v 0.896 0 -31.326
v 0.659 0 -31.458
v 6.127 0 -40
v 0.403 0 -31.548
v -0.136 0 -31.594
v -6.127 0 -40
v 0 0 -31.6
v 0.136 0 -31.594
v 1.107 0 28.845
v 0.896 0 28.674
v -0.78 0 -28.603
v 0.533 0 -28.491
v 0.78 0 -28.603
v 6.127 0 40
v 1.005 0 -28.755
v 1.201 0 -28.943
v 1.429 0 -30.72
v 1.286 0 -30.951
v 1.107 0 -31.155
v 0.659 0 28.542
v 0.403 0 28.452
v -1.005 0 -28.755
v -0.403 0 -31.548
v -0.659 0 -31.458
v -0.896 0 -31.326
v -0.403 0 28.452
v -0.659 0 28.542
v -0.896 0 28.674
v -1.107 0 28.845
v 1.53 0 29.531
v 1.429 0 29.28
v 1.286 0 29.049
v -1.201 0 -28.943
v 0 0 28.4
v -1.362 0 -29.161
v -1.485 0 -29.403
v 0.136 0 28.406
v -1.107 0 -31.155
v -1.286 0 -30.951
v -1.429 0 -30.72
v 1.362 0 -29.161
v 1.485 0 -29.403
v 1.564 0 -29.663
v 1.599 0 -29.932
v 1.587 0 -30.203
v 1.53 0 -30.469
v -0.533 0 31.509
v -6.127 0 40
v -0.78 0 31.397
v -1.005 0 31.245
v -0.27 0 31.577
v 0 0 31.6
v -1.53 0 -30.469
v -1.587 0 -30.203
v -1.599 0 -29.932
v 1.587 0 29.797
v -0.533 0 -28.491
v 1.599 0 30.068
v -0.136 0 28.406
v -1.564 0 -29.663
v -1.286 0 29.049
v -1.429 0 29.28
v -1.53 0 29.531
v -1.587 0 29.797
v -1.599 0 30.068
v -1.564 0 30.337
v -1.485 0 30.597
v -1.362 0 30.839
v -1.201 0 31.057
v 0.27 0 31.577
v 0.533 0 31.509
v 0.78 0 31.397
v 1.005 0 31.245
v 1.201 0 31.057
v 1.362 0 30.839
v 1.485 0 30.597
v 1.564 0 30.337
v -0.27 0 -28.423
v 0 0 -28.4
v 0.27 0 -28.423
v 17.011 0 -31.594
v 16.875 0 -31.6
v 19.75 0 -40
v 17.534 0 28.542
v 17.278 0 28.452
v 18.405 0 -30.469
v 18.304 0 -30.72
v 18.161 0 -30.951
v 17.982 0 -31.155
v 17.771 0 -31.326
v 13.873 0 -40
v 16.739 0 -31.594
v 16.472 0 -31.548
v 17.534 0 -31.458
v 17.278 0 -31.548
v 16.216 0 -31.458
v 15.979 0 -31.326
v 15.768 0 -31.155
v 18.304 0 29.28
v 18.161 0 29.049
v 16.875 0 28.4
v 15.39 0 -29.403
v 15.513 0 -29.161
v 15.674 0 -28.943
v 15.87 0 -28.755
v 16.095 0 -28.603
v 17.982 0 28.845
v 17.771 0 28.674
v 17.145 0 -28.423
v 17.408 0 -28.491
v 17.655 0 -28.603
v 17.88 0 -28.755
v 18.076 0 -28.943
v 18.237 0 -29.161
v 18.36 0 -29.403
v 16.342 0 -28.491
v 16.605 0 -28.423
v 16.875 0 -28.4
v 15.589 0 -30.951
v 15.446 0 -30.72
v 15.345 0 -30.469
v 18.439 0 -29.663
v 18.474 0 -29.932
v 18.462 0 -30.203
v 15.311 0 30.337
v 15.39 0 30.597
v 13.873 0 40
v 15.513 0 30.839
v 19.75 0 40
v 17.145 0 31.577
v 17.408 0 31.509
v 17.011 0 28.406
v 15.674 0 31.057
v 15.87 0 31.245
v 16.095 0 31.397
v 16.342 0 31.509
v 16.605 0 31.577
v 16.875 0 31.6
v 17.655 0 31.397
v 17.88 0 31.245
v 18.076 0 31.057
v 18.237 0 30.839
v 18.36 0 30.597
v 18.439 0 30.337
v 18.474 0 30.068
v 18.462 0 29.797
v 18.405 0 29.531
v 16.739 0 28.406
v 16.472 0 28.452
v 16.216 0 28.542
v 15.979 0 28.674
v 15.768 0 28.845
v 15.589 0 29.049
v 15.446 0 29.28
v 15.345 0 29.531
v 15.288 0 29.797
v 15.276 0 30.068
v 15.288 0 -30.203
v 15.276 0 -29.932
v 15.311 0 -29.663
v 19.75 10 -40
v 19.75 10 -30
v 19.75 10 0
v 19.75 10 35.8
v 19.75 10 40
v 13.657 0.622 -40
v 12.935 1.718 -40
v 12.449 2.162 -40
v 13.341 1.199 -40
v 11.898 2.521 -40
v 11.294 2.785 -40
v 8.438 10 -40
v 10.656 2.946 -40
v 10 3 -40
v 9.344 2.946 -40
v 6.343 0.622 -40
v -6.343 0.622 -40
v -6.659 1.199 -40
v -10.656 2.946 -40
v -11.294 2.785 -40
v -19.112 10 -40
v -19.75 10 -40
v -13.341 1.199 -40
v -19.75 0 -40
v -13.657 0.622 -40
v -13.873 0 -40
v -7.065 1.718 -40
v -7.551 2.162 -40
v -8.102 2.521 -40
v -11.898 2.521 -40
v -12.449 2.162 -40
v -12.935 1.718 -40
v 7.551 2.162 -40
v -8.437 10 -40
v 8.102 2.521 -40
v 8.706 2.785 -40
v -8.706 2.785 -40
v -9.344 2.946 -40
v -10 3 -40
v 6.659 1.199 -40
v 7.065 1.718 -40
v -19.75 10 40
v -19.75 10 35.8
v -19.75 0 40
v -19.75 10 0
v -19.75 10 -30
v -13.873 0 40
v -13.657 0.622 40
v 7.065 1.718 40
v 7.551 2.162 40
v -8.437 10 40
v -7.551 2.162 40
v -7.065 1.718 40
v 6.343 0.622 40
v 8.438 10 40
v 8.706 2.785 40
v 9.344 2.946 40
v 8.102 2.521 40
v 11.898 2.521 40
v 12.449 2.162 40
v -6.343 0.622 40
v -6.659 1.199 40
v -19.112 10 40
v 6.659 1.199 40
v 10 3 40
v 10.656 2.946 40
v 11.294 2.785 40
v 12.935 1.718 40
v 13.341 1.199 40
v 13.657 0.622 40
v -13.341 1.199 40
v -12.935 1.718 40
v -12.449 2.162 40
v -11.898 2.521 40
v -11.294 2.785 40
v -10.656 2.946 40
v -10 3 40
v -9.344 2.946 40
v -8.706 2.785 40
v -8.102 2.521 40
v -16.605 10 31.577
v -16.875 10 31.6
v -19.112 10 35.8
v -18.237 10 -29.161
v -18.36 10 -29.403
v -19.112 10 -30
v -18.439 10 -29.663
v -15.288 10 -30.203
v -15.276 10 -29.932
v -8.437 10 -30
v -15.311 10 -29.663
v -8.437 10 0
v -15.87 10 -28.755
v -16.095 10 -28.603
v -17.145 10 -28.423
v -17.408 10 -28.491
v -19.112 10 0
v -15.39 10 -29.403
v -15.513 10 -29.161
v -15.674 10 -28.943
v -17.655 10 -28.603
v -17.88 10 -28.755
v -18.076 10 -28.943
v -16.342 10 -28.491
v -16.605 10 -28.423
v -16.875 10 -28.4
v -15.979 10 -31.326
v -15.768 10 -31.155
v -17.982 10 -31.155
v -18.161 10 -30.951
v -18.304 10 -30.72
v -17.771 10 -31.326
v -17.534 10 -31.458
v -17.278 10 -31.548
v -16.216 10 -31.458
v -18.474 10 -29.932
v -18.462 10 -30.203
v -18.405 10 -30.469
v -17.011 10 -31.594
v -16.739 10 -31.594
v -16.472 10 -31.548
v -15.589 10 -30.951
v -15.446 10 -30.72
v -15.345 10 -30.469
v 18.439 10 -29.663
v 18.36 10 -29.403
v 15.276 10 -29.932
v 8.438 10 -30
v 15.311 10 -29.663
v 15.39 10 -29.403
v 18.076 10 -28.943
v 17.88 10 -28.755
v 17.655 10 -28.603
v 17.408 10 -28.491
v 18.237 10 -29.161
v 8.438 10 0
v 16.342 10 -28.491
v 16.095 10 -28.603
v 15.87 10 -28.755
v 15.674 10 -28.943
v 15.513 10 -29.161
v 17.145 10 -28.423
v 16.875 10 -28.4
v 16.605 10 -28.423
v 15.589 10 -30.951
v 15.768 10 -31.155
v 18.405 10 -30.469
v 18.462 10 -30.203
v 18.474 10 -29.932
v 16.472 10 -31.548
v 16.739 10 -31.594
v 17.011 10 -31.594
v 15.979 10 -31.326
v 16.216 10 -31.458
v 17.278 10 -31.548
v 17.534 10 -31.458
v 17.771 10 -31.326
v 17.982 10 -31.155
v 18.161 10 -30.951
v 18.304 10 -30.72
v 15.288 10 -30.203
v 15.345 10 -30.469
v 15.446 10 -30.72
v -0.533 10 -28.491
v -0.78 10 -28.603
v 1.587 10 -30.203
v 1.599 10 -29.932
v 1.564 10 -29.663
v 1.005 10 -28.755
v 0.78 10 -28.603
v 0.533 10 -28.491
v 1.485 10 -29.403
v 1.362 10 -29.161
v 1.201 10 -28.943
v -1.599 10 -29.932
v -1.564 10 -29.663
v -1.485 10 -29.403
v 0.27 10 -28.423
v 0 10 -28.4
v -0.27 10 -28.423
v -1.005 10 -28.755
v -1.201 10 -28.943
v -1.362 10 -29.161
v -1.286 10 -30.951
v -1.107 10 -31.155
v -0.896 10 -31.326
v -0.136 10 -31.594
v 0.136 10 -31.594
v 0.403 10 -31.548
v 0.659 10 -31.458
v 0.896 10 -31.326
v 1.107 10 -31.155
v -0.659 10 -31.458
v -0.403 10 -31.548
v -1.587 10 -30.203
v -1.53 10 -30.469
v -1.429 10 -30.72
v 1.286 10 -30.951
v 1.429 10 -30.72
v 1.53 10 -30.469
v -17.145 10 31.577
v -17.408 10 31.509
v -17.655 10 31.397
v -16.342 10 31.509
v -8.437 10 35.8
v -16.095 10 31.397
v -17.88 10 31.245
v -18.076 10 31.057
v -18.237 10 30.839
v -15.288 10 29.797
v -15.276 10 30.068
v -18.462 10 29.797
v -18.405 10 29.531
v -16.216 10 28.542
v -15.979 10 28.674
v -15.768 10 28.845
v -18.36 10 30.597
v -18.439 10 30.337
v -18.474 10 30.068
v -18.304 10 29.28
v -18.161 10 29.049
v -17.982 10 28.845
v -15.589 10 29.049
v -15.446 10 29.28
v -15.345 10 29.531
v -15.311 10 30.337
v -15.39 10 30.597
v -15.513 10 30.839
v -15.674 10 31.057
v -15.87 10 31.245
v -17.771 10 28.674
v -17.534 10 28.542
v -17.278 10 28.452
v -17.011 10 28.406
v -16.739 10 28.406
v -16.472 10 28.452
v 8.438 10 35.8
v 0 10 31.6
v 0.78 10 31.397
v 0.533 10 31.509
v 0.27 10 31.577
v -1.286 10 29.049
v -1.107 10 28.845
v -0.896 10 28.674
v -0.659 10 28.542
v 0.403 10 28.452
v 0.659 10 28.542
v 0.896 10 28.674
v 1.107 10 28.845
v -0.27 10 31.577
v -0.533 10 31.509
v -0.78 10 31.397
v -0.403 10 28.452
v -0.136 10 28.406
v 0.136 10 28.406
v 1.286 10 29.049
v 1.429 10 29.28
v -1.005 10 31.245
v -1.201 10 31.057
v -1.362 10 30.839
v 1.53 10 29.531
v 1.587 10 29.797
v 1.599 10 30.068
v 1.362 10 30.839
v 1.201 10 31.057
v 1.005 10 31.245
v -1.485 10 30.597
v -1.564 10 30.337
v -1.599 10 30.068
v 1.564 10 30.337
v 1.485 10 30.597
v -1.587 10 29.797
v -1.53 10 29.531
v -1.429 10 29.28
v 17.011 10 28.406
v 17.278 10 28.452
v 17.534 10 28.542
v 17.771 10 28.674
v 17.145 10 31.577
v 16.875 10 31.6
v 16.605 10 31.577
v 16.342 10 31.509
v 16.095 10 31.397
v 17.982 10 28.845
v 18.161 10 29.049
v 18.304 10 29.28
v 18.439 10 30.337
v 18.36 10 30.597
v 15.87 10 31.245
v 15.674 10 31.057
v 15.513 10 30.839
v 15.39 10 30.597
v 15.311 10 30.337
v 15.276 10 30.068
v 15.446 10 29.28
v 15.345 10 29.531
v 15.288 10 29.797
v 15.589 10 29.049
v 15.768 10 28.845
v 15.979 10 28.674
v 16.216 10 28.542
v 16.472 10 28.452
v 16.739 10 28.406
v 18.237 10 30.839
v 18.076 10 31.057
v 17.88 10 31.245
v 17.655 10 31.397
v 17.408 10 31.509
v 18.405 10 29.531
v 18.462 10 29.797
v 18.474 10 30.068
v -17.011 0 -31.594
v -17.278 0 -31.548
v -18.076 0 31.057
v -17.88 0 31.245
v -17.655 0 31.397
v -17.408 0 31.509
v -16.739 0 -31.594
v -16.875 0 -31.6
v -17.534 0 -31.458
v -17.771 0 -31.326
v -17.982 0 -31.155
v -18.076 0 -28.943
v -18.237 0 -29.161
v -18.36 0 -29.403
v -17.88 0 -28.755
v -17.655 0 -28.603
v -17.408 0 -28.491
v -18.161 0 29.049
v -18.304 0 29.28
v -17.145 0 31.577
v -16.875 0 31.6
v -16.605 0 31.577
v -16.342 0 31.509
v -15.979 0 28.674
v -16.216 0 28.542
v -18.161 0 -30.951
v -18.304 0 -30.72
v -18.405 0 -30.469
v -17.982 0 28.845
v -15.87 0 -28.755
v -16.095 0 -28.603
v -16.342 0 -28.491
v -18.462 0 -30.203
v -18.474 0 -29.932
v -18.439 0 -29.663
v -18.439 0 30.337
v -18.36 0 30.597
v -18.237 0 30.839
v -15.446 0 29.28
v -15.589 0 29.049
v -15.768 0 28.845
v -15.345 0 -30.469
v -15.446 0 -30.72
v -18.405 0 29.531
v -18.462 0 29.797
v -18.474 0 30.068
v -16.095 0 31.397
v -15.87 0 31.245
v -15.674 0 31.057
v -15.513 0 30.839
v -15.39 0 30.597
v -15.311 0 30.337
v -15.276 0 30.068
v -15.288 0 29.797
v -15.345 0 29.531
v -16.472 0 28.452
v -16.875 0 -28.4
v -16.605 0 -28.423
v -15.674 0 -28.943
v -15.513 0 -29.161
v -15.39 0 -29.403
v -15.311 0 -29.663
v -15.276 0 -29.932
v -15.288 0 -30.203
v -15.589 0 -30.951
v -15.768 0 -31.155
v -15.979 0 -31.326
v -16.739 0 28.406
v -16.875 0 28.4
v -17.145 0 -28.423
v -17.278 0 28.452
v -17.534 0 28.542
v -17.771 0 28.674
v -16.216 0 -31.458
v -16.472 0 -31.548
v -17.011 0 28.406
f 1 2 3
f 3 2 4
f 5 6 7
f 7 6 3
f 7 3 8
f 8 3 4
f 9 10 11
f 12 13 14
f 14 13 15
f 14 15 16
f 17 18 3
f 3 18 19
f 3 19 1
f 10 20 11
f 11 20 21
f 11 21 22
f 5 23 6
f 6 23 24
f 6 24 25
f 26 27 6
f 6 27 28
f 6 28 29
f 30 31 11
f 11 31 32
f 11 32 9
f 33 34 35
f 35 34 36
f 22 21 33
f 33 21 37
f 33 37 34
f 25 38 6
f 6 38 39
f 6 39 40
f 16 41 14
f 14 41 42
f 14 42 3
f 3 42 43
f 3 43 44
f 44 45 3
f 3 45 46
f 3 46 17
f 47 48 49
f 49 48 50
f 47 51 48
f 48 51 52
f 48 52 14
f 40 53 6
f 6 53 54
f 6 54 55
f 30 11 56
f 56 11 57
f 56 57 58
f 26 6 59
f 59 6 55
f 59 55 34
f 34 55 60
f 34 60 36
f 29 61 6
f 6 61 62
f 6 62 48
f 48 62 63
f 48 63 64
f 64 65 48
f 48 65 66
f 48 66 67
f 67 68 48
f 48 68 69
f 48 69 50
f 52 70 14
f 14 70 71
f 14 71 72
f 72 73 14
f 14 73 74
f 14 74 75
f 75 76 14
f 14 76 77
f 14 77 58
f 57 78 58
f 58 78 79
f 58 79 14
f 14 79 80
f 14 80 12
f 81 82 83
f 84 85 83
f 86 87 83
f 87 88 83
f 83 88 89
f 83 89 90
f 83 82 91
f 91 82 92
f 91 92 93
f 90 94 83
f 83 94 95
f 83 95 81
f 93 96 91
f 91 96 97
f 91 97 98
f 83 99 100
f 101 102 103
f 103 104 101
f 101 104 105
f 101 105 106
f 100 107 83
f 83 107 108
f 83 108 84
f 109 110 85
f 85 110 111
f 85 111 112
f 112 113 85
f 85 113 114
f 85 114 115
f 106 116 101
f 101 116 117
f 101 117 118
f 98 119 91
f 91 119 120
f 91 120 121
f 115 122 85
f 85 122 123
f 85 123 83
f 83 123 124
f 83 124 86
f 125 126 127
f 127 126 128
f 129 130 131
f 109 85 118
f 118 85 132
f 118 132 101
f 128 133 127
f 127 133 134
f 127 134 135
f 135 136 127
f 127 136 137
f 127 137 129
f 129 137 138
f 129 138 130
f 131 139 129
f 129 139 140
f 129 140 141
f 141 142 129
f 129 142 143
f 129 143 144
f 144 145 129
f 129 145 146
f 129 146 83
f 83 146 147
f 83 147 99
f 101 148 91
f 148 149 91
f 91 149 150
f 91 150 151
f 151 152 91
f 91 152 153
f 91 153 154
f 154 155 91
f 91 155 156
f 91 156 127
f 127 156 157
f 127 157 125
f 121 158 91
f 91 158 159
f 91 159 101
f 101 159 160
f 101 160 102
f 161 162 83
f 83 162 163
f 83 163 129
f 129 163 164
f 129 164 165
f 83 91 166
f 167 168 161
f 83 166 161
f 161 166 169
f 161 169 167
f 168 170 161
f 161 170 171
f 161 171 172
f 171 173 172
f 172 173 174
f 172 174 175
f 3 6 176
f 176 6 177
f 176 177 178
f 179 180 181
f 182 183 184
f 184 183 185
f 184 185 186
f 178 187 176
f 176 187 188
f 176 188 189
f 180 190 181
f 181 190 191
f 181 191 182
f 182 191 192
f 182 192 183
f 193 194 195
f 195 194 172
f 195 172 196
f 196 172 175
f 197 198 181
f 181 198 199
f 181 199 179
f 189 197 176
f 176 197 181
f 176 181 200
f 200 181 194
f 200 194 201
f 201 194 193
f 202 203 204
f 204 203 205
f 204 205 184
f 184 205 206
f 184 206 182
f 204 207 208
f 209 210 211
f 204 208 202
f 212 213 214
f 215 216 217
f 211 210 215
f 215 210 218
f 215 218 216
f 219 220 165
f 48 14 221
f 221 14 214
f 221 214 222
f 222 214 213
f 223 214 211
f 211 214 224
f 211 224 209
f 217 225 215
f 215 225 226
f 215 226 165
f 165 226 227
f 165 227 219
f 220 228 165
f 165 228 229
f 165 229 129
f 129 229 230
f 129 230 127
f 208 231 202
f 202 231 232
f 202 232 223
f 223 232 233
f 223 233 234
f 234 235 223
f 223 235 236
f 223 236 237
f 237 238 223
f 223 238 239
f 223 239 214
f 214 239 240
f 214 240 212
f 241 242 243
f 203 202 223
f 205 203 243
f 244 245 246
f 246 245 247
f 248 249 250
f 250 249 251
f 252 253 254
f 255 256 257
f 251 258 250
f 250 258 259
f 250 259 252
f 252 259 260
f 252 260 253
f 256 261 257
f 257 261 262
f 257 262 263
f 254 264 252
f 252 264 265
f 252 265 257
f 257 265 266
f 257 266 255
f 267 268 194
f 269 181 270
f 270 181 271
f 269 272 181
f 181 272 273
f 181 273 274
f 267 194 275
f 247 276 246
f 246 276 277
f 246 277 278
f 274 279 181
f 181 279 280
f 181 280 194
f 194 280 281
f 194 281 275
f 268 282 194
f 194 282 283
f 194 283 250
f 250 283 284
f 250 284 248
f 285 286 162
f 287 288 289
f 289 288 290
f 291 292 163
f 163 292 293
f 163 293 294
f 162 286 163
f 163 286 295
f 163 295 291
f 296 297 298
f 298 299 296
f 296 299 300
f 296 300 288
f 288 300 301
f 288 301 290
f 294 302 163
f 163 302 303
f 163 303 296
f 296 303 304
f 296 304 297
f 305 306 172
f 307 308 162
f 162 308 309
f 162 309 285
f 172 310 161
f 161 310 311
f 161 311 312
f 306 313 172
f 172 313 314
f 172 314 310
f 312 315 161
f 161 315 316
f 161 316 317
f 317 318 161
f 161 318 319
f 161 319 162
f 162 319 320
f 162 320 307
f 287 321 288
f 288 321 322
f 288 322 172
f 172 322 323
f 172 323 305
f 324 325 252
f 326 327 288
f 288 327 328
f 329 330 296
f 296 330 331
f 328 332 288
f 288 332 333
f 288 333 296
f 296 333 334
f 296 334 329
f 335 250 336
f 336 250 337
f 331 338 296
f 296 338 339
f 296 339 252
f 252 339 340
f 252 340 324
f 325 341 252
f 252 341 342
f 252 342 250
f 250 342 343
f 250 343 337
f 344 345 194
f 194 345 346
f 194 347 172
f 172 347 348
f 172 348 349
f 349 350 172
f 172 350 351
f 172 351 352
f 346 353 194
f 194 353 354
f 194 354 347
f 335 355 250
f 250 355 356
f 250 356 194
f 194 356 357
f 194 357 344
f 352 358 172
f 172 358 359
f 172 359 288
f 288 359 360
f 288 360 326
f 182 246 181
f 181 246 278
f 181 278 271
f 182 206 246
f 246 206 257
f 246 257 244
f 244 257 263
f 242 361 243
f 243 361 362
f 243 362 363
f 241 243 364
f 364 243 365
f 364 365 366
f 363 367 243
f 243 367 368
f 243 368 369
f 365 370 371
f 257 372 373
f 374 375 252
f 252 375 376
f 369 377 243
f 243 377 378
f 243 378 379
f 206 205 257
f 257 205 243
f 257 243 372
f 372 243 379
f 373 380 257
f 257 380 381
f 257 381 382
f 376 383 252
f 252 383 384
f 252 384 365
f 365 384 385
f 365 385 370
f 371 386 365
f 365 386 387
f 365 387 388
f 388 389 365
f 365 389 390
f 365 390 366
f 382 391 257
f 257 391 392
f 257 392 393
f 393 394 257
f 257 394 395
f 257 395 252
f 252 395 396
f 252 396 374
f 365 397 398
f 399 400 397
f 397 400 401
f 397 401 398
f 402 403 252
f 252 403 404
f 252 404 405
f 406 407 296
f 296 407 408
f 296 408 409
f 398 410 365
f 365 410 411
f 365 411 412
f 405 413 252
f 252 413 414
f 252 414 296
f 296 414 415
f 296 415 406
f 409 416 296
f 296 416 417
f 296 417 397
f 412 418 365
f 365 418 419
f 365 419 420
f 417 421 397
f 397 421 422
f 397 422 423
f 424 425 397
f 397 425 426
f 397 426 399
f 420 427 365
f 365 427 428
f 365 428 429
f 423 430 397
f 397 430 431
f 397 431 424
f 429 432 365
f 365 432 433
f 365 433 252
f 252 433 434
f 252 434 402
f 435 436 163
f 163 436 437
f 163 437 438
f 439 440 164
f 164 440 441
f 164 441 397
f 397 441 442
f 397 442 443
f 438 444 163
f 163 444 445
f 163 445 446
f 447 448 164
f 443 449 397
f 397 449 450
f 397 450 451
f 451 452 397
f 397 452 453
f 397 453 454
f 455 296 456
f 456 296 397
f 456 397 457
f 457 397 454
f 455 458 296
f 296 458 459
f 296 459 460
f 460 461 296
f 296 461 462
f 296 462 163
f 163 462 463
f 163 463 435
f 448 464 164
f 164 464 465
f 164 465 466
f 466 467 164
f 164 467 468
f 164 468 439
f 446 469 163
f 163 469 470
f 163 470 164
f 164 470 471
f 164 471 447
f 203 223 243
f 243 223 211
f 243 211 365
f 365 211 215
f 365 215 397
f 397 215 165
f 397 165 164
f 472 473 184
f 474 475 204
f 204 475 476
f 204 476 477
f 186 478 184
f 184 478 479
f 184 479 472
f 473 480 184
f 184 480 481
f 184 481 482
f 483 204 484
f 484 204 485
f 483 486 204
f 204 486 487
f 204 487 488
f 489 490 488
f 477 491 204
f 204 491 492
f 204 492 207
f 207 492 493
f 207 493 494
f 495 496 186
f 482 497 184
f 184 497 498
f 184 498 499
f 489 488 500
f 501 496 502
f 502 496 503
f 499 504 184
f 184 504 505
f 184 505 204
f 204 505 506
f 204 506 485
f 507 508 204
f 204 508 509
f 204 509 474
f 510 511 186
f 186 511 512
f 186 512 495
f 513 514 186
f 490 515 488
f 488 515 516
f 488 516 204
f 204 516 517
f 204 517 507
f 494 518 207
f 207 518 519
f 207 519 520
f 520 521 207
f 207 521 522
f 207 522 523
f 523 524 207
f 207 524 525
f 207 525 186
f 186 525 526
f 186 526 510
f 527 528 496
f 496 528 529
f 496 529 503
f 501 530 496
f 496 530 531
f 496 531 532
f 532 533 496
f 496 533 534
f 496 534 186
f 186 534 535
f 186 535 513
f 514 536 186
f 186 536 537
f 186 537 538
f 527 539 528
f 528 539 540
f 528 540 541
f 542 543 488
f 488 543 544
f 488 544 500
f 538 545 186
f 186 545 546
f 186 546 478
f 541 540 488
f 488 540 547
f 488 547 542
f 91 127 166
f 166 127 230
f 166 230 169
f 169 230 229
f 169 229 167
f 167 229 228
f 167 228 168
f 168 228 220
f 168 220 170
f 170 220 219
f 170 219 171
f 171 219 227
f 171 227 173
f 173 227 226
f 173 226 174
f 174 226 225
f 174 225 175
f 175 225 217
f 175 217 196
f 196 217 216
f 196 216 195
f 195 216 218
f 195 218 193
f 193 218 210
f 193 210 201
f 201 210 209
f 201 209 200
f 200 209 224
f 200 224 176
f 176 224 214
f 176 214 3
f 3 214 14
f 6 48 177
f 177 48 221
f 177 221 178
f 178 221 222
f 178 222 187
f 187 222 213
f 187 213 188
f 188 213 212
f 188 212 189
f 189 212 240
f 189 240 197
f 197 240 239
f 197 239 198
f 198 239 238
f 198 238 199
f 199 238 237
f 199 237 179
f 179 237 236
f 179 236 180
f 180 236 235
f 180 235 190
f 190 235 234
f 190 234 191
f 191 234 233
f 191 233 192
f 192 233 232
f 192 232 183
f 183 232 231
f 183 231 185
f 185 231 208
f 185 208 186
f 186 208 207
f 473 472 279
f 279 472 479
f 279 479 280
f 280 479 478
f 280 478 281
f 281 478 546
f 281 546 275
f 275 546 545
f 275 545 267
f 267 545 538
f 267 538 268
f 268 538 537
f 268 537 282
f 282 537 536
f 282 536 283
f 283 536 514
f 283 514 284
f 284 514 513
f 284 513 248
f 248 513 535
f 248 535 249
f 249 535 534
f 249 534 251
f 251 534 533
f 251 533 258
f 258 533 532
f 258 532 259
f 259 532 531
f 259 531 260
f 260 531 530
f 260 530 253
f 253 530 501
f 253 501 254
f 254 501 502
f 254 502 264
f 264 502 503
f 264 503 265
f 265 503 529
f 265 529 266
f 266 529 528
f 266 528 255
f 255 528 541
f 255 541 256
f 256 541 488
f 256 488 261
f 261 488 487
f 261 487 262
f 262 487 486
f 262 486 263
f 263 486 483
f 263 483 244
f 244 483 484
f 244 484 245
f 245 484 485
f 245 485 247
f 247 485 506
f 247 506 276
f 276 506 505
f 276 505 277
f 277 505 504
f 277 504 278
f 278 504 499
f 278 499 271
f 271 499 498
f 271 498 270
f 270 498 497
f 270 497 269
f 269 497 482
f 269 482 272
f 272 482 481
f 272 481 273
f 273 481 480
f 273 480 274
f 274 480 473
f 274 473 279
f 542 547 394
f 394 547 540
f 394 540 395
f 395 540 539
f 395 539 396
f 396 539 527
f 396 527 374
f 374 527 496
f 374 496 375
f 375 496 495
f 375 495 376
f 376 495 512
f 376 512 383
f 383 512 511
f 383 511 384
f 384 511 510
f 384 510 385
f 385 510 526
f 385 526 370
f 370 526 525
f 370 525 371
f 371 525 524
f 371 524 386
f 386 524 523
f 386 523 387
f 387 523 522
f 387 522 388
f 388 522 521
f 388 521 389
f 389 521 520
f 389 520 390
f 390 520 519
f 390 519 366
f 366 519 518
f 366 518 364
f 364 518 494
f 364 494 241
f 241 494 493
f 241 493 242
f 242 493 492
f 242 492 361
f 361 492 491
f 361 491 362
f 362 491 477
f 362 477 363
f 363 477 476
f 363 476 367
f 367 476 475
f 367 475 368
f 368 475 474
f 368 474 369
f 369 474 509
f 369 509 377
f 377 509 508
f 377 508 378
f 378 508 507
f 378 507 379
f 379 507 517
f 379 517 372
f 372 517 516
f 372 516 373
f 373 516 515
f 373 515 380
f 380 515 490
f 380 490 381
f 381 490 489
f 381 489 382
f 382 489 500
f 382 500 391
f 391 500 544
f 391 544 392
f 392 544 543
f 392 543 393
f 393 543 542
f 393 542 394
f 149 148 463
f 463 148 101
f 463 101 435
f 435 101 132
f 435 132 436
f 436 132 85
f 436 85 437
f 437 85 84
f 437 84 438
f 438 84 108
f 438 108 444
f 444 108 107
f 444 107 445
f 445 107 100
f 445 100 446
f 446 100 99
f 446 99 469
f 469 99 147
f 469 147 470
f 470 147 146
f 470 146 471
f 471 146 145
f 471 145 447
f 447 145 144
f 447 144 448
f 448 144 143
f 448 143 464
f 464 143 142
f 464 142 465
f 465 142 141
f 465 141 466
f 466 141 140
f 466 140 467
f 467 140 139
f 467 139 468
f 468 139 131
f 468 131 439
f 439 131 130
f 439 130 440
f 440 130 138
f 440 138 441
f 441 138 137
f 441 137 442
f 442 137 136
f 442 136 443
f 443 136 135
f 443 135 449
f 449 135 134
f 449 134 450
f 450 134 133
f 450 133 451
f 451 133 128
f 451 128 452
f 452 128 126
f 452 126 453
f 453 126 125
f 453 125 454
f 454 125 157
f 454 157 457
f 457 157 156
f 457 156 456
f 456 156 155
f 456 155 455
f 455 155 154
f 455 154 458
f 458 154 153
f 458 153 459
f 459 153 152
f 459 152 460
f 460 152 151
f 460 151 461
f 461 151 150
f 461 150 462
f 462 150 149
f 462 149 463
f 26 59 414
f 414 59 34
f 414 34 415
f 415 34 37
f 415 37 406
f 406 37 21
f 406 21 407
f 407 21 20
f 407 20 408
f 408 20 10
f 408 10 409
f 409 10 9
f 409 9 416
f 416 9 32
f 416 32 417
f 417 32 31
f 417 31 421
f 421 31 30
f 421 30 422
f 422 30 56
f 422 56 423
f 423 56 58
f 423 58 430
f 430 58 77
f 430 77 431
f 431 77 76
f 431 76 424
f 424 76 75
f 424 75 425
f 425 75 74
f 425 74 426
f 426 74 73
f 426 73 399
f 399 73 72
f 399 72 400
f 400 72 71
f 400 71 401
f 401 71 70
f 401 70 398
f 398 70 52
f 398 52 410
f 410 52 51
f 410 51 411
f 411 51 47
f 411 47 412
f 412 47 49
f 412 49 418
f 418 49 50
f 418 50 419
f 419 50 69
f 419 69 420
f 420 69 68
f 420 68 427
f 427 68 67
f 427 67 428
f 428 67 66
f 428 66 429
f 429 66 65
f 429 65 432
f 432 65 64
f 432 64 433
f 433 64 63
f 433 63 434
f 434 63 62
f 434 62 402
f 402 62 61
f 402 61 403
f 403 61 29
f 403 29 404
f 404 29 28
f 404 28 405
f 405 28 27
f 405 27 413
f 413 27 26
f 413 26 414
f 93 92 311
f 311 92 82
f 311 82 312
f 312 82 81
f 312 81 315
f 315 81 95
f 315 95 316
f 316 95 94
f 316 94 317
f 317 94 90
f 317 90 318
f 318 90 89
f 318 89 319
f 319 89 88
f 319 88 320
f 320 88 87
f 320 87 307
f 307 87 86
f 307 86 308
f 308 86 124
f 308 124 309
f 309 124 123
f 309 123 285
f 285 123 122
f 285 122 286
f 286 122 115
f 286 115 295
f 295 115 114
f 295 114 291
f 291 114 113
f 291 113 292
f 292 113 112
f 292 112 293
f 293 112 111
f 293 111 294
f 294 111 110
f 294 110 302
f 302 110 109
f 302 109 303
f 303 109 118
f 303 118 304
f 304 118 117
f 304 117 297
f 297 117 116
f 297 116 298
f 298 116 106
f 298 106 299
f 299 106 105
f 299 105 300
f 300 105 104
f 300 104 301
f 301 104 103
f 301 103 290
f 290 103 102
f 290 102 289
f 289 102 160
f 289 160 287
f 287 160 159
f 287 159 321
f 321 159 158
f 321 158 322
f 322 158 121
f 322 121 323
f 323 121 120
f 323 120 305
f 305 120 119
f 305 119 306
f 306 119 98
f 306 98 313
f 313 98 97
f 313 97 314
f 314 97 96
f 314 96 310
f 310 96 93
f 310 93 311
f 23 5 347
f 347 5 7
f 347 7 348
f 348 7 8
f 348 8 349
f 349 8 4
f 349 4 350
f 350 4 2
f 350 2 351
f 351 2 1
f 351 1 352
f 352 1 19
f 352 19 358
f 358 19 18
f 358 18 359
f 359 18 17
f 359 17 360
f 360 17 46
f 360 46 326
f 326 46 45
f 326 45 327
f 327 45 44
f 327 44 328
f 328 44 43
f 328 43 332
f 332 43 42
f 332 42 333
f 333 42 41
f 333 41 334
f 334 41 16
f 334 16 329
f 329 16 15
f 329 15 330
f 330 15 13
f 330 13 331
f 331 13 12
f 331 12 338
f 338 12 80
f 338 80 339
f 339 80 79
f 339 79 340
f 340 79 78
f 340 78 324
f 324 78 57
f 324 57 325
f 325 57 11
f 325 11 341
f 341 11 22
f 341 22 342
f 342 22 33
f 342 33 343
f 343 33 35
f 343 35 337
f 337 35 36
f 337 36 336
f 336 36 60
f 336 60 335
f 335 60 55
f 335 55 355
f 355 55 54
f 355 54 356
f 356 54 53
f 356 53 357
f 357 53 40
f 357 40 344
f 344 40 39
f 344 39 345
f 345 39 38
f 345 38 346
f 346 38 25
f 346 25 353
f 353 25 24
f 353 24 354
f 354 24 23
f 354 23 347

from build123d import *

# Parameters (mm, degrees)
CROQUIS1_W              = 39.5
CROQUIS1_H              = 80
SALIENTE_EXTRUIR1_DEPTH = 10
CROQUIS2_R              = 4
CORTAR_EXTRUIR1_DEPTH   = 82
CROQUIS3_R              = 1.6
CORTAR_EXTRUIR2_DEPTH   = 11


with BuildPart() as part:
    # Croquis1 → Saliente-Extruir1 (new body)
    with BuildSketch(Plane(origin=(0, 0, 0), x_dir=(1, 0, 0), z_dir=(0, 1, 0))):
        Rectangle(CROQUIS1_W, CROQUIS1_H)
    extrude(amount=SALIENTE_EXTRUIR1_DEPTH)

    # Croquis2 → Cortar-Extruir1 (cut)
    with BuildSketch(Plane.XY.offset(40)):
        with Locations((-10, -1)):
            Circle(CROQUIS2_R)
        with Locations((10, -1)):
            Circle(CROQUIS2_R)
    extrude(amount=-CORTAR_EXTRUIR1_DEPTH, mode=Mode.SUBTRACT)

    # Croquis3 → Cortar-Extruir2 (cut)
    with BuildSketch(Plane(origin=(0, 10, 0), x_dir=(1, 0, 0), z_dir=(0, 1, 0))):
        with Locations(Location((-16.875, 30, 0), (0, 0, 270))):
            Circle(CROQUIS3_R)
        with Locations(Location((0, 30, 0), (0, 0, 270))):
            Circle(CROQUIS3_R)
        with Locations(Location((16.875, 30, 0), (0, 0, 270))):
            Circle(CROQUIS3_R)
        with Locations(Location((-16.875, -30, 0), (0, 0, 270))):
            Circle(CROQUIS3_R)
        with Locations(Location((0, -30, 0), (0, 0, 270))):
            Circle(CROQUIS3_R)
        with Locations(Location((16.875, -30, 0), (0, 0, 270))):
            Circle(CROQUIS3_R)
    extrude(amount=-CORTAR_EXTRUIR2_DEPTH, mode=Mode.SUBTRACT)


solid = part.part
